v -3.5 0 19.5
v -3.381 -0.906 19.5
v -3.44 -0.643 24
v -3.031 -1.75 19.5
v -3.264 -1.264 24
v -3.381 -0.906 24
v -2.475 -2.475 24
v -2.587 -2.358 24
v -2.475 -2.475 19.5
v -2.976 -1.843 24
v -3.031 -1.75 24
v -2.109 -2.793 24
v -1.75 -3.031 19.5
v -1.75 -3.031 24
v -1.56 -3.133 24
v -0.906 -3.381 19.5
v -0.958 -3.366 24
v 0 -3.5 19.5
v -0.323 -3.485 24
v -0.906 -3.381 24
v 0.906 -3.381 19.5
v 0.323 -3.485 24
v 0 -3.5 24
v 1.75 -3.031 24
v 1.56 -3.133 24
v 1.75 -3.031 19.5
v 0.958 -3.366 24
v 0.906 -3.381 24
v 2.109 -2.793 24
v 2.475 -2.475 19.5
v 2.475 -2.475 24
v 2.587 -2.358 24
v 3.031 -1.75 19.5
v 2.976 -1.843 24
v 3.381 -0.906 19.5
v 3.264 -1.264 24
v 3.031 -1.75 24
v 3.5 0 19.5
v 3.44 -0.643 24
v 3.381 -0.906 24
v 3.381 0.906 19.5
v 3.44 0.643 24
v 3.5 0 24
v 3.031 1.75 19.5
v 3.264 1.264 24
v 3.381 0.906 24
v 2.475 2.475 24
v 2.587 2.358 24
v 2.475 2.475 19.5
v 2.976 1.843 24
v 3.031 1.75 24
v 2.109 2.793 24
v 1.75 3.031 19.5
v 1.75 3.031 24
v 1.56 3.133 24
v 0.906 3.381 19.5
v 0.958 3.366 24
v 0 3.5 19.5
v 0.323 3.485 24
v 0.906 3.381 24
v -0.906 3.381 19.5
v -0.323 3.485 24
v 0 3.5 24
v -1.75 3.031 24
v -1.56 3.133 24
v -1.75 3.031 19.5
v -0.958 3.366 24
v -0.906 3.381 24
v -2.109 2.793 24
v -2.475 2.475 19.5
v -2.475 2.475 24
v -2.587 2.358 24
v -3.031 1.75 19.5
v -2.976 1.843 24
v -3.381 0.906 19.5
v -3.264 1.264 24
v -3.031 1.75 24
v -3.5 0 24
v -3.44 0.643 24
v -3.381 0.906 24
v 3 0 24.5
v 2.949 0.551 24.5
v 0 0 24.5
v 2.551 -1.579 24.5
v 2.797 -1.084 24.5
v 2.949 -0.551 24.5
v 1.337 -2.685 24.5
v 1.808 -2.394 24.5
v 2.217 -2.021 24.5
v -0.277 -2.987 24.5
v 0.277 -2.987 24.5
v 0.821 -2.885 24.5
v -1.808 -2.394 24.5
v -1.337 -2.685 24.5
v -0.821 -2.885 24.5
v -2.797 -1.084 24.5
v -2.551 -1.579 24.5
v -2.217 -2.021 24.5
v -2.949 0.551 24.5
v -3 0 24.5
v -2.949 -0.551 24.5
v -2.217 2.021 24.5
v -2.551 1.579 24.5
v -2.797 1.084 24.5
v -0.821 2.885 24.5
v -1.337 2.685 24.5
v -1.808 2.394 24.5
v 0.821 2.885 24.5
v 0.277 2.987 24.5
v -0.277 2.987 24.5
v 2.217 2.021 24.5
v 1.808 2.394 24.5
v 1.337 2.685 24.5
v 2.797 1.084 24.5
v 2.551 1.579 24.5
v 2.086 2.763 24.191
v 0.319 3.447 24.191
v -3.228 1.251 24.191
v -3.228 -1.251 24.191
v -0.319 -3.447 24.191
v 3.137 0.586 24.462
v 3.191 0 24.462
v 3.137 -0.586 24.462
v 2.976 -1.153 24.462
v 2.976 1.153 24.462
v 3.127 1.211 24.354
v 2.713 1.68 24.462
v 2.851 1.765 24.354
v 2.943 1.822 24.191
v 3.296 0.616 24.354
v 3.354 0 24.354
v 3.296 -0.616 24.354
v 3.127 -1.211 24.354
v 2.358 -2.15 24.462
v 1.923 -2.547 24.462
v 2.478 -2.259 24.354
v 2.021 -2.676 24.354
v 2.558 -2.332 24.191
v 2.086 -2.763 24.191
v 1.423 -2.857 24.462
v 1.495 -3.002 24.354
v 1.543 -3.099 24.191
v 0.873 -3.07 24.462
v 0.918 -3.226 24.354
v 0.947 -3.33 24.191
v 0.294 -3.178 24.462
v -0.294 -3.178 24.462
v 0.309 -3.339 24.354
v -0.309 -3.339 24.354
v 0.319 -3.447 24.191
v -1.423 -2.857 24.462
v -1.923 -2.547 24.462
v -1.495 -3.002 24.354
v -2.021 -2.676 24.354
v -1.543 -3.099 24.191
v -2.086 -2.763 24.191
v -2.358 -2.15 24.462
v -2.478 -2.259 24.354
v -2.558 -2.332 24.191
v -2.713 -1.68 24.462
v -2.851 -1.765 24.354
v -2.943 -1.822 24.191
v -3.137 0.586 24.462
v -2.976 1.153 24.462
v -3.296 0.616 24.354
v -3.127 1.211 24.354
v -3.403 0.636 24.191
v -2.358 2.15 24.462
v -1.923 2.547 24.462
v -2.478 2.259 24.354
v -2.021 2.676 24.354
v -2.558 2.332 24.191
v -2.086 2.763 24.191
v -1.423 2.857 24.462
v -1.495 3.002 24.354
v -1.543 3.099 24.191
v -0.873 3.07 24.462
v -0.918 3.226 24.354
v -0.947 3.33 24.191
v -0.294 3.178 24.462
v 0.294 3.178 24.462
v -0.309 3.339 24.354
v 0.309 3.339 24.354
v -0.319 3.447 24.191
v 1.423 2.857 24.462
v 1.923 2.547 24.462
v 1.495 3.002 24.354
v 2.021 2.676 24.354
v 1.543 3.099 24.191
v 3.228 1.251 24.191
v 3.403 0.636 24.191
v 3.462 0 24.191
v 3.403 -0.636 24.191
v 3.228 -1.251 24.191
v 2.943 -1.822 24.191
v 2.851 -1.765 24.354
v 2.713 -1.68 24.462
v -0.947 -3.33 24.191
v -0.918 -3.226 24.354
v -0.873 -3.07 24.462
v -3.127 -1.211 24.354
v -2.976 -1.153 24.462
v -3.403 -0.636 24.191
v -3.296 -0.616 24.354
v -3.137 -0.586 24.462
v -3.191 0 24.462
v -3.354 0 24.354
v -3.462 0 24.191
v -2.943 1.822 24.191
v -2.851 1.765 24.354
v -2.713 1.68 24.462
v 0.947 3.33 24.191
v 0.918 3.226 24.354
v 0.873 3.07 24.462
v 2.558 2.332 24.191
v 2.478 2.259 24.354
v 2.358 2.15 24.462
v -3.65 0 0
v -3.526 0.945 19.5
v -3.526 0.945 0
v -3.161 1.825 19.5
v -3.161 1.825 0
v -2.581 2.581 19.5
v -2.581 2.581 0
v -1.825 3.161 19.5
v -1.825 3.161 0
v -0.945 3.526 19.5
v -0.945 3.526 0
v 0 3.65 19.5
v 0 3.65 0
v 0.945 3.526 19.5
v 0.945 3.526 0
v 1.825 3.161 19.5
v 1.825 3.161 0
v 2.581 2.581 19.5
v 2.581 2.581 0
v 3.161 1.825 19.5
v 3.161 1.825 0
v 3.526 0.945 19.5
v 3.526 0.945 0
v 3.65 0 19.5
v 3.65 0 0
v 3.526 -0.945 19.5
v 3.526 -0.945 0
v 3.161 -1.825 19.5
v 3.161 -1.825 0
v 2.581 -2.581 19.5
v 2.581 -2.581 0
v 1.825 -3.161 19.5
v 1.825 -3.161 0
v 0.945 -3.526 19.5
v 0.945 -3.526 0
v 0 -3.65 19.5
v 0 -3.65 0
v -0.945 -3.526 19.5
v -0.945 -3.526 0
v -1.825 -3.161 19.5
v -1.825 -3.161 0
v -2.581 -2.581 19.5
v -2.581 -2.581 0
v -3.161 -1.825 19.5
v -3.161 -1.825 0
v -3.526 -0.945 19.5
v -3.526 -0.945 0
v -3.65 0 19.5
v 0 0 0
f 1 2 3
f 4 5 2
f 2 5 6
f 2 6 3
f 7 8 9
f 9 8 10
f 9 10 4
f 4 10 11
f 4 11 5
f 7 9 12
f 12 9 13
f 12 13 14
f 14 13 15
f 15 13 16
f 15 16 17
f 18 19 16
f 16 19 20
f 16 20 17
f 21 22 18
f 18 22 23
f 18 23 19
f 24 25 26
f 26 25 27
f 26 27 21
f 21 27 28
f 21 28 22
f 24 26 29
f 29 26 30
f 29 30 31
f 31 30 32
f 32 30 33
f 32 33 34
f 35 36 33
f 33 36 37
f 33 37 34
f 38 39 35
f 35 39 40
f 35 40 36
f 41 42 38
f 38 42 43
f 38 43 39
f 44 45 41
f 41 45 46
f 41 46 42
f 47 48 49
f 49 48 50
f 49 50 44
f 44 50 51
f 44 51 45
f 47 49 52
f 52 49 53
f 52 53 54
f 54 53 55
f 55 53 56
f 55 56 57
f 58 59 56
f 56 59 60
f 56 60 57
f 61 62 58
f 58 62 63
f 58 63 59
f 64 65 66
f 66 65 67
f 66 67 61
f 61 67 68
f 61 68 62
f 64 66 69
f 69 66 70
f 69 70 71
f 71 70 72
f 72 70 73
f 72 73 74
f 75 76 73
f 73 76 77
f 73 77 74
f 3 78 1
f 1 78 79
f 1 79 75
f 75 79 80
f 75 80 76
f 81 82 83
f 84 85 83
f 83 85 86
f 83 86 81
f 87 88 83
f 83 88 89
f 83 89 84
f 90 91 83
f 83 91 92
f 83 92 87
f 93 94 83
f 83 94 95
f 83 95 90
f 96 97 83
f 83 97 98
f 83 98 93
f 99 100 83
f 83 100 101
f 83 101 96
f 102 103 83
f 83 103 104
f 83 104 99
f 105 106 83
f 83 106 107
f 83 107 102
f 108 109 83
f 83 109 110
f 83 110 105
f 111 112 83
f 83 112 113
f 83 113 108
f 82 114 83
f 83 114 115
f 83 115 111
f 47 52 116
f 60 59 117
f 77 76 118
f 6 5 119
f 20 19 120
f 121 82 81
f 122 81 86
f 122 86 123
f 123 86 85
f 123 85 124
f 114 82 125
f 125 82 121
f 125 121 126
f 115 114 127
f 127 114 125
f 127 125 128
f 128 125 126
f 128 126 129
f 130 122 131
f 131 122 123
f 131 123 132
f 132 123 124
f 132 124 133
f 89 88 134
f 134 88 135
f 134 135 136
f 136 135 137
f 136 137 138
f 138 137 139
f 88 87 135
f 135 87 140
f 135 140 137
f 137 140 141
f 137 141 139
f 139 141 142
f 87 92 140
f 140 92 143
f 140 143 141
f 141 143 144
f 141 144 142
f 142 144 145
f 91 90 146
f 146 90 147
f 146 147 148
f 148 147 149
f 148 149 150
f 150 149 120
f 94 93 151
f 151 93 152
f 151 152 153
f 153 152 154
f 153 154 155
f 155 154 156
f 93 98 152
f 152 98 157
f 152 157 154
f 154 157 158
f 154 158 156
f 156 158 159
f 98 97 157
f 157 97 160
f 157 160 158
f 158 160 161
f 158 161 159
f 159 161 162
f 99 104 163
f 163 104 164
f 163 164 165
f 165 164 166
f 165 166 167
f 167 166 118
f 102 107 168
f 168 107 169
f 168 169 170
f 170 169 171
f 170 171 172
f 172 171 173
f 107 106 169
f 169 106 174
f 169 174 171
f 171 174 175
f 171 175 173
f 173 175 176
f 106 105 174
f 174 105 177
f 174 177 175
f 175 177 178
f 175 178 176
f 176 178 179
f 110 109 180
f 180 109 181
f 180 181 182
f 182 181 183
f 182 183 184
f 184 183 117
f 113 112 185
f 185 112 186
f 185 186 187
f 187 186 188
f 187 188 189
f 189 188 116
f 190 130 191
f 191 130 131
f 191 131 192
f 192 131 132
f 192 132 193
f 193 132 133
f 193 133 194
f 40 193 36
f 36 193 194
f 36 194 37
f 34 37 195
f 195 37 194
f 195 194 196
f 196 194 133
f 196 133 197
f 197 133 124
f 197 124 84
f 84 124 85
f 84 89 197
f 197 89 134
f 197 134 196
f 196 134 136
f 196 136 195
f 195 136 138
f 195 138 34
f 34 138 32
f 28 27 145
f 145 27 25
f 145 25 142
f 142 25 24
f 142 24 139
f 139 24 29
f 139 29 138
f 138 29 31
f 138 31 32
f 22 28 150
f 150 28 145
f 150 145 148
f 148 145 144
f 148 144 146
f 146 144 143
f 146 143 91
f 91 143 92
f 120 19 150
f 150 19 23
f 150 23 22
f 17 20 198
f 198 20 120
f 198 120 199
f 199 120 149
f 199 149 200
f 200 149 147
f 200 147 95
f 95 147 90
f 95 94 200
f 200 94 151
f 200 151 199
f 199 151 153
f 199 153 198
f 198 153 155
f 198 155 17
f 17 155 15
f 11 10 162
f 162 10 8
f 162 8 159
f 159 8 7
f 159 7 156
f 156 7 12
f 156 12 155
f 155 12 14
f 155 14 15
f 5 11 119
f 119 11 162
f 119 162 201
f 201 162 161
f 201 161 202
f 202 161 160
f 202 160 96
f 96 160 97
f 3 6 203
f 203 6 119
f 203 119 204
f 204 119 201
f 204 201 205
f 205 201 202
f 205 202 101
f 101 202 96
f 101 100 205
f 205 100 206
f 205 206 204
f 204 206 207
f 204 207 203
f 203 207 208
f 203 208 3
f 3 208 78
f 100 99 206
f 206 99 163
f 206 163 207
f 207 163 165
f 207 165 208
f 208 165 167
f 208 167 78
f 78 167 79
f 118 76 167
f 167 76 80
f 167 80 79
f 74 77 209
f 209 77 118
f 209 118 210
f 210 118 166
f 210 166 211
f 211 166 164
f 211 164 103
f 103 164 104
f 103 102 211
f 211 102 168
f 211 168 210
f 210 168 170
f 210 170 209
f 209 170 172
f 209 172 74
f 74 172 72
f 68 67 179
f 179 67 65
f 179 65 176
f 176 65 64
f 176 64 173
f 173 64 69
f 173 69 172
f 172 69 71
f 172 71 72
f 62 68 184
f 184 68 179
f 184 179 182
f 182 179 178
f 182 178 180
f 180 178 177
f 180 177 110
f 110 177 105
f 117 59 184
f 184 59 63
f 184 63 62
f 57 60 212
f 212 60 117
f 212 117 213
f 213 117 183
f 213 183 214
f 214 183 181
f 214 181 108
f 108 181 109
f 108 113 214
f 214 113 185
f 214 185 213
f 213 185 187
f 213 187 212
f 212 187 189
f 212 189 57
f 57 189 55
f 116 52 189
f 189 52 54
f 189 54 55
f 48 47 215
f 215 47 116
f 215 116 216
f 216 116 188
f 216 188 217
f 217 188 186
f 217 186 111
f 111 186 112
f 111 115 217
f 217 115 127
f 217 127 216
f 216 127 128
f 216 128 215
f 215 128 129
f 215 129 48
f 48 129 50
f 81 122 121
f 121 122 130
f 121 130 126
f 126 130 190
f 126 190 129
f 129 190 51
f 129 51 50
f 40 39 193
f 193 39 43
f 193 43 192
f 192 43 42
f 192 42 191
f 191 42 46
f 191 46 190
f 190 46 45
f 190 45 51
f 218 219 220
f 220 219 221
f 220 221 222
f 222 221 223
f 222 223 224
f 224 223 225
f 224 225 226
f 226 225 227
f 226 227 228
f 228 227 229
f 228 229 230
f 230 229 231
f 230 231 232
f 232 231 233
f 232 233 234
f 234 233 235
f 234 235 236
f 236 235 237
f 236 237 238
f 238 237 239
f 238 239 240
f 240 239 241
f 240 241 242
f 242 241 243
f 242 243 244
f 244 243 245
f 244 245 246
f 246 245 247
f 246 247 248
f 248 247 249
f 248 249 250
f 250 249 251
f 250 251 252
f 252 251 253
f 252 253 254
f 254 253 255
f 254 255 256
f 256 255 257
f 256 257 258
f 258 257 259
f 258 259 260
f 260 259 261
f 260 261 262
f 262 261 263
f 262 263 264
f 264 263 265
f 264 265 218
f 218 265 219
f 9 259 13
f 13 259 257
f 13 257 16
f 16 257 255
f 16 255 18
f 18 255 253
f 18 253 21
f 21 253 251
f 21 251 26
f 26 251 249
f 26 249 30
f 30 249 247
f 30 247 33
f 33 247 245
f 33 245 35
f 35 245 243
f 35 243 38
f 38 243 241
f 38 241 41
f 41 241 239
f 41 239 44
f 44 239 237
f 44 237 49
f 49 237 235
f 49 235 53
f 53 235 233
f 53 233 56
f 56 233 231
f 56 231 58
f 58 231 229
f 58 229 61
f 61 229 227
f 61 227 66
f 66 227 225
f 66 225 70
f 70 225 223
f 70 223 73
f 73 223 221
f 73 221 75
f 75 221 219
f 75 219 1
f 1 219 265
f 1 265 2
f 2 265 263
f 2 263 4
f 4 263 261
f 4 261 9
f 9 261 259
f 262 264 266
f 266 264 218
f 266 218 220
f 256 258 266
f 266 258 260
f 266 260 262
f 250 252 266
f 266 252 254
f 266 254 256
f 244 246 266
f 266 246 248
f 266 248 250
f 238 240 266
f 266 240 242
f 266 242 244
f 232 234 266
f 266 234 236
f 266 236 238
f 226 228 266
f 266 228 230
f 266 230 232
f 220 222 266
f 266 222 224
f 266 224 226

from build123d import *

# Parameters (mm, degrees)
SKIZZE1_R                       = 3.5
AUFSATZ_LINEAR_AUSTRAGEN1_DEPTH = 24.5
VERRUNDUNG1_R                   = 0.5
SKIZZE2_R                       = 3.65
AUFSATZ_LINEAR_AUSTRAGEN2_DEPTH = 19.5


with BuildPart() as part:
    # Skizze1 → Aufsatz-Linear austragen1 (new body)
    with BuildSketch(Plane.XY):
        Circle(SKIZZE1_R)
    extrude(amount=AUFSATZ_LINEAR_AUSTRAGEN1_DEPTH)

    # Verrundung1
    verrundung1_edges = [part.edges().sort_by_distance(p)[0] for p in [
        (-3.5, 0, 24.5),
    ]]
    fillet(verrundung1_edges, radius=VERRUNDUNG1_R)

    # Skizze2 → Aufsatz-Linear austragen2 (add)
    with BuildSketch(Plane(origin=(0, 0, 0), x_dir=(-1, 0, 0), z_dir=(0, 0, -1))):
        Circle(SKIZZE2_R)
    extrude(amount=-AUFSATZ_LINEAR_AUSTRAGEN2_DEPTH)


solid = part.part
